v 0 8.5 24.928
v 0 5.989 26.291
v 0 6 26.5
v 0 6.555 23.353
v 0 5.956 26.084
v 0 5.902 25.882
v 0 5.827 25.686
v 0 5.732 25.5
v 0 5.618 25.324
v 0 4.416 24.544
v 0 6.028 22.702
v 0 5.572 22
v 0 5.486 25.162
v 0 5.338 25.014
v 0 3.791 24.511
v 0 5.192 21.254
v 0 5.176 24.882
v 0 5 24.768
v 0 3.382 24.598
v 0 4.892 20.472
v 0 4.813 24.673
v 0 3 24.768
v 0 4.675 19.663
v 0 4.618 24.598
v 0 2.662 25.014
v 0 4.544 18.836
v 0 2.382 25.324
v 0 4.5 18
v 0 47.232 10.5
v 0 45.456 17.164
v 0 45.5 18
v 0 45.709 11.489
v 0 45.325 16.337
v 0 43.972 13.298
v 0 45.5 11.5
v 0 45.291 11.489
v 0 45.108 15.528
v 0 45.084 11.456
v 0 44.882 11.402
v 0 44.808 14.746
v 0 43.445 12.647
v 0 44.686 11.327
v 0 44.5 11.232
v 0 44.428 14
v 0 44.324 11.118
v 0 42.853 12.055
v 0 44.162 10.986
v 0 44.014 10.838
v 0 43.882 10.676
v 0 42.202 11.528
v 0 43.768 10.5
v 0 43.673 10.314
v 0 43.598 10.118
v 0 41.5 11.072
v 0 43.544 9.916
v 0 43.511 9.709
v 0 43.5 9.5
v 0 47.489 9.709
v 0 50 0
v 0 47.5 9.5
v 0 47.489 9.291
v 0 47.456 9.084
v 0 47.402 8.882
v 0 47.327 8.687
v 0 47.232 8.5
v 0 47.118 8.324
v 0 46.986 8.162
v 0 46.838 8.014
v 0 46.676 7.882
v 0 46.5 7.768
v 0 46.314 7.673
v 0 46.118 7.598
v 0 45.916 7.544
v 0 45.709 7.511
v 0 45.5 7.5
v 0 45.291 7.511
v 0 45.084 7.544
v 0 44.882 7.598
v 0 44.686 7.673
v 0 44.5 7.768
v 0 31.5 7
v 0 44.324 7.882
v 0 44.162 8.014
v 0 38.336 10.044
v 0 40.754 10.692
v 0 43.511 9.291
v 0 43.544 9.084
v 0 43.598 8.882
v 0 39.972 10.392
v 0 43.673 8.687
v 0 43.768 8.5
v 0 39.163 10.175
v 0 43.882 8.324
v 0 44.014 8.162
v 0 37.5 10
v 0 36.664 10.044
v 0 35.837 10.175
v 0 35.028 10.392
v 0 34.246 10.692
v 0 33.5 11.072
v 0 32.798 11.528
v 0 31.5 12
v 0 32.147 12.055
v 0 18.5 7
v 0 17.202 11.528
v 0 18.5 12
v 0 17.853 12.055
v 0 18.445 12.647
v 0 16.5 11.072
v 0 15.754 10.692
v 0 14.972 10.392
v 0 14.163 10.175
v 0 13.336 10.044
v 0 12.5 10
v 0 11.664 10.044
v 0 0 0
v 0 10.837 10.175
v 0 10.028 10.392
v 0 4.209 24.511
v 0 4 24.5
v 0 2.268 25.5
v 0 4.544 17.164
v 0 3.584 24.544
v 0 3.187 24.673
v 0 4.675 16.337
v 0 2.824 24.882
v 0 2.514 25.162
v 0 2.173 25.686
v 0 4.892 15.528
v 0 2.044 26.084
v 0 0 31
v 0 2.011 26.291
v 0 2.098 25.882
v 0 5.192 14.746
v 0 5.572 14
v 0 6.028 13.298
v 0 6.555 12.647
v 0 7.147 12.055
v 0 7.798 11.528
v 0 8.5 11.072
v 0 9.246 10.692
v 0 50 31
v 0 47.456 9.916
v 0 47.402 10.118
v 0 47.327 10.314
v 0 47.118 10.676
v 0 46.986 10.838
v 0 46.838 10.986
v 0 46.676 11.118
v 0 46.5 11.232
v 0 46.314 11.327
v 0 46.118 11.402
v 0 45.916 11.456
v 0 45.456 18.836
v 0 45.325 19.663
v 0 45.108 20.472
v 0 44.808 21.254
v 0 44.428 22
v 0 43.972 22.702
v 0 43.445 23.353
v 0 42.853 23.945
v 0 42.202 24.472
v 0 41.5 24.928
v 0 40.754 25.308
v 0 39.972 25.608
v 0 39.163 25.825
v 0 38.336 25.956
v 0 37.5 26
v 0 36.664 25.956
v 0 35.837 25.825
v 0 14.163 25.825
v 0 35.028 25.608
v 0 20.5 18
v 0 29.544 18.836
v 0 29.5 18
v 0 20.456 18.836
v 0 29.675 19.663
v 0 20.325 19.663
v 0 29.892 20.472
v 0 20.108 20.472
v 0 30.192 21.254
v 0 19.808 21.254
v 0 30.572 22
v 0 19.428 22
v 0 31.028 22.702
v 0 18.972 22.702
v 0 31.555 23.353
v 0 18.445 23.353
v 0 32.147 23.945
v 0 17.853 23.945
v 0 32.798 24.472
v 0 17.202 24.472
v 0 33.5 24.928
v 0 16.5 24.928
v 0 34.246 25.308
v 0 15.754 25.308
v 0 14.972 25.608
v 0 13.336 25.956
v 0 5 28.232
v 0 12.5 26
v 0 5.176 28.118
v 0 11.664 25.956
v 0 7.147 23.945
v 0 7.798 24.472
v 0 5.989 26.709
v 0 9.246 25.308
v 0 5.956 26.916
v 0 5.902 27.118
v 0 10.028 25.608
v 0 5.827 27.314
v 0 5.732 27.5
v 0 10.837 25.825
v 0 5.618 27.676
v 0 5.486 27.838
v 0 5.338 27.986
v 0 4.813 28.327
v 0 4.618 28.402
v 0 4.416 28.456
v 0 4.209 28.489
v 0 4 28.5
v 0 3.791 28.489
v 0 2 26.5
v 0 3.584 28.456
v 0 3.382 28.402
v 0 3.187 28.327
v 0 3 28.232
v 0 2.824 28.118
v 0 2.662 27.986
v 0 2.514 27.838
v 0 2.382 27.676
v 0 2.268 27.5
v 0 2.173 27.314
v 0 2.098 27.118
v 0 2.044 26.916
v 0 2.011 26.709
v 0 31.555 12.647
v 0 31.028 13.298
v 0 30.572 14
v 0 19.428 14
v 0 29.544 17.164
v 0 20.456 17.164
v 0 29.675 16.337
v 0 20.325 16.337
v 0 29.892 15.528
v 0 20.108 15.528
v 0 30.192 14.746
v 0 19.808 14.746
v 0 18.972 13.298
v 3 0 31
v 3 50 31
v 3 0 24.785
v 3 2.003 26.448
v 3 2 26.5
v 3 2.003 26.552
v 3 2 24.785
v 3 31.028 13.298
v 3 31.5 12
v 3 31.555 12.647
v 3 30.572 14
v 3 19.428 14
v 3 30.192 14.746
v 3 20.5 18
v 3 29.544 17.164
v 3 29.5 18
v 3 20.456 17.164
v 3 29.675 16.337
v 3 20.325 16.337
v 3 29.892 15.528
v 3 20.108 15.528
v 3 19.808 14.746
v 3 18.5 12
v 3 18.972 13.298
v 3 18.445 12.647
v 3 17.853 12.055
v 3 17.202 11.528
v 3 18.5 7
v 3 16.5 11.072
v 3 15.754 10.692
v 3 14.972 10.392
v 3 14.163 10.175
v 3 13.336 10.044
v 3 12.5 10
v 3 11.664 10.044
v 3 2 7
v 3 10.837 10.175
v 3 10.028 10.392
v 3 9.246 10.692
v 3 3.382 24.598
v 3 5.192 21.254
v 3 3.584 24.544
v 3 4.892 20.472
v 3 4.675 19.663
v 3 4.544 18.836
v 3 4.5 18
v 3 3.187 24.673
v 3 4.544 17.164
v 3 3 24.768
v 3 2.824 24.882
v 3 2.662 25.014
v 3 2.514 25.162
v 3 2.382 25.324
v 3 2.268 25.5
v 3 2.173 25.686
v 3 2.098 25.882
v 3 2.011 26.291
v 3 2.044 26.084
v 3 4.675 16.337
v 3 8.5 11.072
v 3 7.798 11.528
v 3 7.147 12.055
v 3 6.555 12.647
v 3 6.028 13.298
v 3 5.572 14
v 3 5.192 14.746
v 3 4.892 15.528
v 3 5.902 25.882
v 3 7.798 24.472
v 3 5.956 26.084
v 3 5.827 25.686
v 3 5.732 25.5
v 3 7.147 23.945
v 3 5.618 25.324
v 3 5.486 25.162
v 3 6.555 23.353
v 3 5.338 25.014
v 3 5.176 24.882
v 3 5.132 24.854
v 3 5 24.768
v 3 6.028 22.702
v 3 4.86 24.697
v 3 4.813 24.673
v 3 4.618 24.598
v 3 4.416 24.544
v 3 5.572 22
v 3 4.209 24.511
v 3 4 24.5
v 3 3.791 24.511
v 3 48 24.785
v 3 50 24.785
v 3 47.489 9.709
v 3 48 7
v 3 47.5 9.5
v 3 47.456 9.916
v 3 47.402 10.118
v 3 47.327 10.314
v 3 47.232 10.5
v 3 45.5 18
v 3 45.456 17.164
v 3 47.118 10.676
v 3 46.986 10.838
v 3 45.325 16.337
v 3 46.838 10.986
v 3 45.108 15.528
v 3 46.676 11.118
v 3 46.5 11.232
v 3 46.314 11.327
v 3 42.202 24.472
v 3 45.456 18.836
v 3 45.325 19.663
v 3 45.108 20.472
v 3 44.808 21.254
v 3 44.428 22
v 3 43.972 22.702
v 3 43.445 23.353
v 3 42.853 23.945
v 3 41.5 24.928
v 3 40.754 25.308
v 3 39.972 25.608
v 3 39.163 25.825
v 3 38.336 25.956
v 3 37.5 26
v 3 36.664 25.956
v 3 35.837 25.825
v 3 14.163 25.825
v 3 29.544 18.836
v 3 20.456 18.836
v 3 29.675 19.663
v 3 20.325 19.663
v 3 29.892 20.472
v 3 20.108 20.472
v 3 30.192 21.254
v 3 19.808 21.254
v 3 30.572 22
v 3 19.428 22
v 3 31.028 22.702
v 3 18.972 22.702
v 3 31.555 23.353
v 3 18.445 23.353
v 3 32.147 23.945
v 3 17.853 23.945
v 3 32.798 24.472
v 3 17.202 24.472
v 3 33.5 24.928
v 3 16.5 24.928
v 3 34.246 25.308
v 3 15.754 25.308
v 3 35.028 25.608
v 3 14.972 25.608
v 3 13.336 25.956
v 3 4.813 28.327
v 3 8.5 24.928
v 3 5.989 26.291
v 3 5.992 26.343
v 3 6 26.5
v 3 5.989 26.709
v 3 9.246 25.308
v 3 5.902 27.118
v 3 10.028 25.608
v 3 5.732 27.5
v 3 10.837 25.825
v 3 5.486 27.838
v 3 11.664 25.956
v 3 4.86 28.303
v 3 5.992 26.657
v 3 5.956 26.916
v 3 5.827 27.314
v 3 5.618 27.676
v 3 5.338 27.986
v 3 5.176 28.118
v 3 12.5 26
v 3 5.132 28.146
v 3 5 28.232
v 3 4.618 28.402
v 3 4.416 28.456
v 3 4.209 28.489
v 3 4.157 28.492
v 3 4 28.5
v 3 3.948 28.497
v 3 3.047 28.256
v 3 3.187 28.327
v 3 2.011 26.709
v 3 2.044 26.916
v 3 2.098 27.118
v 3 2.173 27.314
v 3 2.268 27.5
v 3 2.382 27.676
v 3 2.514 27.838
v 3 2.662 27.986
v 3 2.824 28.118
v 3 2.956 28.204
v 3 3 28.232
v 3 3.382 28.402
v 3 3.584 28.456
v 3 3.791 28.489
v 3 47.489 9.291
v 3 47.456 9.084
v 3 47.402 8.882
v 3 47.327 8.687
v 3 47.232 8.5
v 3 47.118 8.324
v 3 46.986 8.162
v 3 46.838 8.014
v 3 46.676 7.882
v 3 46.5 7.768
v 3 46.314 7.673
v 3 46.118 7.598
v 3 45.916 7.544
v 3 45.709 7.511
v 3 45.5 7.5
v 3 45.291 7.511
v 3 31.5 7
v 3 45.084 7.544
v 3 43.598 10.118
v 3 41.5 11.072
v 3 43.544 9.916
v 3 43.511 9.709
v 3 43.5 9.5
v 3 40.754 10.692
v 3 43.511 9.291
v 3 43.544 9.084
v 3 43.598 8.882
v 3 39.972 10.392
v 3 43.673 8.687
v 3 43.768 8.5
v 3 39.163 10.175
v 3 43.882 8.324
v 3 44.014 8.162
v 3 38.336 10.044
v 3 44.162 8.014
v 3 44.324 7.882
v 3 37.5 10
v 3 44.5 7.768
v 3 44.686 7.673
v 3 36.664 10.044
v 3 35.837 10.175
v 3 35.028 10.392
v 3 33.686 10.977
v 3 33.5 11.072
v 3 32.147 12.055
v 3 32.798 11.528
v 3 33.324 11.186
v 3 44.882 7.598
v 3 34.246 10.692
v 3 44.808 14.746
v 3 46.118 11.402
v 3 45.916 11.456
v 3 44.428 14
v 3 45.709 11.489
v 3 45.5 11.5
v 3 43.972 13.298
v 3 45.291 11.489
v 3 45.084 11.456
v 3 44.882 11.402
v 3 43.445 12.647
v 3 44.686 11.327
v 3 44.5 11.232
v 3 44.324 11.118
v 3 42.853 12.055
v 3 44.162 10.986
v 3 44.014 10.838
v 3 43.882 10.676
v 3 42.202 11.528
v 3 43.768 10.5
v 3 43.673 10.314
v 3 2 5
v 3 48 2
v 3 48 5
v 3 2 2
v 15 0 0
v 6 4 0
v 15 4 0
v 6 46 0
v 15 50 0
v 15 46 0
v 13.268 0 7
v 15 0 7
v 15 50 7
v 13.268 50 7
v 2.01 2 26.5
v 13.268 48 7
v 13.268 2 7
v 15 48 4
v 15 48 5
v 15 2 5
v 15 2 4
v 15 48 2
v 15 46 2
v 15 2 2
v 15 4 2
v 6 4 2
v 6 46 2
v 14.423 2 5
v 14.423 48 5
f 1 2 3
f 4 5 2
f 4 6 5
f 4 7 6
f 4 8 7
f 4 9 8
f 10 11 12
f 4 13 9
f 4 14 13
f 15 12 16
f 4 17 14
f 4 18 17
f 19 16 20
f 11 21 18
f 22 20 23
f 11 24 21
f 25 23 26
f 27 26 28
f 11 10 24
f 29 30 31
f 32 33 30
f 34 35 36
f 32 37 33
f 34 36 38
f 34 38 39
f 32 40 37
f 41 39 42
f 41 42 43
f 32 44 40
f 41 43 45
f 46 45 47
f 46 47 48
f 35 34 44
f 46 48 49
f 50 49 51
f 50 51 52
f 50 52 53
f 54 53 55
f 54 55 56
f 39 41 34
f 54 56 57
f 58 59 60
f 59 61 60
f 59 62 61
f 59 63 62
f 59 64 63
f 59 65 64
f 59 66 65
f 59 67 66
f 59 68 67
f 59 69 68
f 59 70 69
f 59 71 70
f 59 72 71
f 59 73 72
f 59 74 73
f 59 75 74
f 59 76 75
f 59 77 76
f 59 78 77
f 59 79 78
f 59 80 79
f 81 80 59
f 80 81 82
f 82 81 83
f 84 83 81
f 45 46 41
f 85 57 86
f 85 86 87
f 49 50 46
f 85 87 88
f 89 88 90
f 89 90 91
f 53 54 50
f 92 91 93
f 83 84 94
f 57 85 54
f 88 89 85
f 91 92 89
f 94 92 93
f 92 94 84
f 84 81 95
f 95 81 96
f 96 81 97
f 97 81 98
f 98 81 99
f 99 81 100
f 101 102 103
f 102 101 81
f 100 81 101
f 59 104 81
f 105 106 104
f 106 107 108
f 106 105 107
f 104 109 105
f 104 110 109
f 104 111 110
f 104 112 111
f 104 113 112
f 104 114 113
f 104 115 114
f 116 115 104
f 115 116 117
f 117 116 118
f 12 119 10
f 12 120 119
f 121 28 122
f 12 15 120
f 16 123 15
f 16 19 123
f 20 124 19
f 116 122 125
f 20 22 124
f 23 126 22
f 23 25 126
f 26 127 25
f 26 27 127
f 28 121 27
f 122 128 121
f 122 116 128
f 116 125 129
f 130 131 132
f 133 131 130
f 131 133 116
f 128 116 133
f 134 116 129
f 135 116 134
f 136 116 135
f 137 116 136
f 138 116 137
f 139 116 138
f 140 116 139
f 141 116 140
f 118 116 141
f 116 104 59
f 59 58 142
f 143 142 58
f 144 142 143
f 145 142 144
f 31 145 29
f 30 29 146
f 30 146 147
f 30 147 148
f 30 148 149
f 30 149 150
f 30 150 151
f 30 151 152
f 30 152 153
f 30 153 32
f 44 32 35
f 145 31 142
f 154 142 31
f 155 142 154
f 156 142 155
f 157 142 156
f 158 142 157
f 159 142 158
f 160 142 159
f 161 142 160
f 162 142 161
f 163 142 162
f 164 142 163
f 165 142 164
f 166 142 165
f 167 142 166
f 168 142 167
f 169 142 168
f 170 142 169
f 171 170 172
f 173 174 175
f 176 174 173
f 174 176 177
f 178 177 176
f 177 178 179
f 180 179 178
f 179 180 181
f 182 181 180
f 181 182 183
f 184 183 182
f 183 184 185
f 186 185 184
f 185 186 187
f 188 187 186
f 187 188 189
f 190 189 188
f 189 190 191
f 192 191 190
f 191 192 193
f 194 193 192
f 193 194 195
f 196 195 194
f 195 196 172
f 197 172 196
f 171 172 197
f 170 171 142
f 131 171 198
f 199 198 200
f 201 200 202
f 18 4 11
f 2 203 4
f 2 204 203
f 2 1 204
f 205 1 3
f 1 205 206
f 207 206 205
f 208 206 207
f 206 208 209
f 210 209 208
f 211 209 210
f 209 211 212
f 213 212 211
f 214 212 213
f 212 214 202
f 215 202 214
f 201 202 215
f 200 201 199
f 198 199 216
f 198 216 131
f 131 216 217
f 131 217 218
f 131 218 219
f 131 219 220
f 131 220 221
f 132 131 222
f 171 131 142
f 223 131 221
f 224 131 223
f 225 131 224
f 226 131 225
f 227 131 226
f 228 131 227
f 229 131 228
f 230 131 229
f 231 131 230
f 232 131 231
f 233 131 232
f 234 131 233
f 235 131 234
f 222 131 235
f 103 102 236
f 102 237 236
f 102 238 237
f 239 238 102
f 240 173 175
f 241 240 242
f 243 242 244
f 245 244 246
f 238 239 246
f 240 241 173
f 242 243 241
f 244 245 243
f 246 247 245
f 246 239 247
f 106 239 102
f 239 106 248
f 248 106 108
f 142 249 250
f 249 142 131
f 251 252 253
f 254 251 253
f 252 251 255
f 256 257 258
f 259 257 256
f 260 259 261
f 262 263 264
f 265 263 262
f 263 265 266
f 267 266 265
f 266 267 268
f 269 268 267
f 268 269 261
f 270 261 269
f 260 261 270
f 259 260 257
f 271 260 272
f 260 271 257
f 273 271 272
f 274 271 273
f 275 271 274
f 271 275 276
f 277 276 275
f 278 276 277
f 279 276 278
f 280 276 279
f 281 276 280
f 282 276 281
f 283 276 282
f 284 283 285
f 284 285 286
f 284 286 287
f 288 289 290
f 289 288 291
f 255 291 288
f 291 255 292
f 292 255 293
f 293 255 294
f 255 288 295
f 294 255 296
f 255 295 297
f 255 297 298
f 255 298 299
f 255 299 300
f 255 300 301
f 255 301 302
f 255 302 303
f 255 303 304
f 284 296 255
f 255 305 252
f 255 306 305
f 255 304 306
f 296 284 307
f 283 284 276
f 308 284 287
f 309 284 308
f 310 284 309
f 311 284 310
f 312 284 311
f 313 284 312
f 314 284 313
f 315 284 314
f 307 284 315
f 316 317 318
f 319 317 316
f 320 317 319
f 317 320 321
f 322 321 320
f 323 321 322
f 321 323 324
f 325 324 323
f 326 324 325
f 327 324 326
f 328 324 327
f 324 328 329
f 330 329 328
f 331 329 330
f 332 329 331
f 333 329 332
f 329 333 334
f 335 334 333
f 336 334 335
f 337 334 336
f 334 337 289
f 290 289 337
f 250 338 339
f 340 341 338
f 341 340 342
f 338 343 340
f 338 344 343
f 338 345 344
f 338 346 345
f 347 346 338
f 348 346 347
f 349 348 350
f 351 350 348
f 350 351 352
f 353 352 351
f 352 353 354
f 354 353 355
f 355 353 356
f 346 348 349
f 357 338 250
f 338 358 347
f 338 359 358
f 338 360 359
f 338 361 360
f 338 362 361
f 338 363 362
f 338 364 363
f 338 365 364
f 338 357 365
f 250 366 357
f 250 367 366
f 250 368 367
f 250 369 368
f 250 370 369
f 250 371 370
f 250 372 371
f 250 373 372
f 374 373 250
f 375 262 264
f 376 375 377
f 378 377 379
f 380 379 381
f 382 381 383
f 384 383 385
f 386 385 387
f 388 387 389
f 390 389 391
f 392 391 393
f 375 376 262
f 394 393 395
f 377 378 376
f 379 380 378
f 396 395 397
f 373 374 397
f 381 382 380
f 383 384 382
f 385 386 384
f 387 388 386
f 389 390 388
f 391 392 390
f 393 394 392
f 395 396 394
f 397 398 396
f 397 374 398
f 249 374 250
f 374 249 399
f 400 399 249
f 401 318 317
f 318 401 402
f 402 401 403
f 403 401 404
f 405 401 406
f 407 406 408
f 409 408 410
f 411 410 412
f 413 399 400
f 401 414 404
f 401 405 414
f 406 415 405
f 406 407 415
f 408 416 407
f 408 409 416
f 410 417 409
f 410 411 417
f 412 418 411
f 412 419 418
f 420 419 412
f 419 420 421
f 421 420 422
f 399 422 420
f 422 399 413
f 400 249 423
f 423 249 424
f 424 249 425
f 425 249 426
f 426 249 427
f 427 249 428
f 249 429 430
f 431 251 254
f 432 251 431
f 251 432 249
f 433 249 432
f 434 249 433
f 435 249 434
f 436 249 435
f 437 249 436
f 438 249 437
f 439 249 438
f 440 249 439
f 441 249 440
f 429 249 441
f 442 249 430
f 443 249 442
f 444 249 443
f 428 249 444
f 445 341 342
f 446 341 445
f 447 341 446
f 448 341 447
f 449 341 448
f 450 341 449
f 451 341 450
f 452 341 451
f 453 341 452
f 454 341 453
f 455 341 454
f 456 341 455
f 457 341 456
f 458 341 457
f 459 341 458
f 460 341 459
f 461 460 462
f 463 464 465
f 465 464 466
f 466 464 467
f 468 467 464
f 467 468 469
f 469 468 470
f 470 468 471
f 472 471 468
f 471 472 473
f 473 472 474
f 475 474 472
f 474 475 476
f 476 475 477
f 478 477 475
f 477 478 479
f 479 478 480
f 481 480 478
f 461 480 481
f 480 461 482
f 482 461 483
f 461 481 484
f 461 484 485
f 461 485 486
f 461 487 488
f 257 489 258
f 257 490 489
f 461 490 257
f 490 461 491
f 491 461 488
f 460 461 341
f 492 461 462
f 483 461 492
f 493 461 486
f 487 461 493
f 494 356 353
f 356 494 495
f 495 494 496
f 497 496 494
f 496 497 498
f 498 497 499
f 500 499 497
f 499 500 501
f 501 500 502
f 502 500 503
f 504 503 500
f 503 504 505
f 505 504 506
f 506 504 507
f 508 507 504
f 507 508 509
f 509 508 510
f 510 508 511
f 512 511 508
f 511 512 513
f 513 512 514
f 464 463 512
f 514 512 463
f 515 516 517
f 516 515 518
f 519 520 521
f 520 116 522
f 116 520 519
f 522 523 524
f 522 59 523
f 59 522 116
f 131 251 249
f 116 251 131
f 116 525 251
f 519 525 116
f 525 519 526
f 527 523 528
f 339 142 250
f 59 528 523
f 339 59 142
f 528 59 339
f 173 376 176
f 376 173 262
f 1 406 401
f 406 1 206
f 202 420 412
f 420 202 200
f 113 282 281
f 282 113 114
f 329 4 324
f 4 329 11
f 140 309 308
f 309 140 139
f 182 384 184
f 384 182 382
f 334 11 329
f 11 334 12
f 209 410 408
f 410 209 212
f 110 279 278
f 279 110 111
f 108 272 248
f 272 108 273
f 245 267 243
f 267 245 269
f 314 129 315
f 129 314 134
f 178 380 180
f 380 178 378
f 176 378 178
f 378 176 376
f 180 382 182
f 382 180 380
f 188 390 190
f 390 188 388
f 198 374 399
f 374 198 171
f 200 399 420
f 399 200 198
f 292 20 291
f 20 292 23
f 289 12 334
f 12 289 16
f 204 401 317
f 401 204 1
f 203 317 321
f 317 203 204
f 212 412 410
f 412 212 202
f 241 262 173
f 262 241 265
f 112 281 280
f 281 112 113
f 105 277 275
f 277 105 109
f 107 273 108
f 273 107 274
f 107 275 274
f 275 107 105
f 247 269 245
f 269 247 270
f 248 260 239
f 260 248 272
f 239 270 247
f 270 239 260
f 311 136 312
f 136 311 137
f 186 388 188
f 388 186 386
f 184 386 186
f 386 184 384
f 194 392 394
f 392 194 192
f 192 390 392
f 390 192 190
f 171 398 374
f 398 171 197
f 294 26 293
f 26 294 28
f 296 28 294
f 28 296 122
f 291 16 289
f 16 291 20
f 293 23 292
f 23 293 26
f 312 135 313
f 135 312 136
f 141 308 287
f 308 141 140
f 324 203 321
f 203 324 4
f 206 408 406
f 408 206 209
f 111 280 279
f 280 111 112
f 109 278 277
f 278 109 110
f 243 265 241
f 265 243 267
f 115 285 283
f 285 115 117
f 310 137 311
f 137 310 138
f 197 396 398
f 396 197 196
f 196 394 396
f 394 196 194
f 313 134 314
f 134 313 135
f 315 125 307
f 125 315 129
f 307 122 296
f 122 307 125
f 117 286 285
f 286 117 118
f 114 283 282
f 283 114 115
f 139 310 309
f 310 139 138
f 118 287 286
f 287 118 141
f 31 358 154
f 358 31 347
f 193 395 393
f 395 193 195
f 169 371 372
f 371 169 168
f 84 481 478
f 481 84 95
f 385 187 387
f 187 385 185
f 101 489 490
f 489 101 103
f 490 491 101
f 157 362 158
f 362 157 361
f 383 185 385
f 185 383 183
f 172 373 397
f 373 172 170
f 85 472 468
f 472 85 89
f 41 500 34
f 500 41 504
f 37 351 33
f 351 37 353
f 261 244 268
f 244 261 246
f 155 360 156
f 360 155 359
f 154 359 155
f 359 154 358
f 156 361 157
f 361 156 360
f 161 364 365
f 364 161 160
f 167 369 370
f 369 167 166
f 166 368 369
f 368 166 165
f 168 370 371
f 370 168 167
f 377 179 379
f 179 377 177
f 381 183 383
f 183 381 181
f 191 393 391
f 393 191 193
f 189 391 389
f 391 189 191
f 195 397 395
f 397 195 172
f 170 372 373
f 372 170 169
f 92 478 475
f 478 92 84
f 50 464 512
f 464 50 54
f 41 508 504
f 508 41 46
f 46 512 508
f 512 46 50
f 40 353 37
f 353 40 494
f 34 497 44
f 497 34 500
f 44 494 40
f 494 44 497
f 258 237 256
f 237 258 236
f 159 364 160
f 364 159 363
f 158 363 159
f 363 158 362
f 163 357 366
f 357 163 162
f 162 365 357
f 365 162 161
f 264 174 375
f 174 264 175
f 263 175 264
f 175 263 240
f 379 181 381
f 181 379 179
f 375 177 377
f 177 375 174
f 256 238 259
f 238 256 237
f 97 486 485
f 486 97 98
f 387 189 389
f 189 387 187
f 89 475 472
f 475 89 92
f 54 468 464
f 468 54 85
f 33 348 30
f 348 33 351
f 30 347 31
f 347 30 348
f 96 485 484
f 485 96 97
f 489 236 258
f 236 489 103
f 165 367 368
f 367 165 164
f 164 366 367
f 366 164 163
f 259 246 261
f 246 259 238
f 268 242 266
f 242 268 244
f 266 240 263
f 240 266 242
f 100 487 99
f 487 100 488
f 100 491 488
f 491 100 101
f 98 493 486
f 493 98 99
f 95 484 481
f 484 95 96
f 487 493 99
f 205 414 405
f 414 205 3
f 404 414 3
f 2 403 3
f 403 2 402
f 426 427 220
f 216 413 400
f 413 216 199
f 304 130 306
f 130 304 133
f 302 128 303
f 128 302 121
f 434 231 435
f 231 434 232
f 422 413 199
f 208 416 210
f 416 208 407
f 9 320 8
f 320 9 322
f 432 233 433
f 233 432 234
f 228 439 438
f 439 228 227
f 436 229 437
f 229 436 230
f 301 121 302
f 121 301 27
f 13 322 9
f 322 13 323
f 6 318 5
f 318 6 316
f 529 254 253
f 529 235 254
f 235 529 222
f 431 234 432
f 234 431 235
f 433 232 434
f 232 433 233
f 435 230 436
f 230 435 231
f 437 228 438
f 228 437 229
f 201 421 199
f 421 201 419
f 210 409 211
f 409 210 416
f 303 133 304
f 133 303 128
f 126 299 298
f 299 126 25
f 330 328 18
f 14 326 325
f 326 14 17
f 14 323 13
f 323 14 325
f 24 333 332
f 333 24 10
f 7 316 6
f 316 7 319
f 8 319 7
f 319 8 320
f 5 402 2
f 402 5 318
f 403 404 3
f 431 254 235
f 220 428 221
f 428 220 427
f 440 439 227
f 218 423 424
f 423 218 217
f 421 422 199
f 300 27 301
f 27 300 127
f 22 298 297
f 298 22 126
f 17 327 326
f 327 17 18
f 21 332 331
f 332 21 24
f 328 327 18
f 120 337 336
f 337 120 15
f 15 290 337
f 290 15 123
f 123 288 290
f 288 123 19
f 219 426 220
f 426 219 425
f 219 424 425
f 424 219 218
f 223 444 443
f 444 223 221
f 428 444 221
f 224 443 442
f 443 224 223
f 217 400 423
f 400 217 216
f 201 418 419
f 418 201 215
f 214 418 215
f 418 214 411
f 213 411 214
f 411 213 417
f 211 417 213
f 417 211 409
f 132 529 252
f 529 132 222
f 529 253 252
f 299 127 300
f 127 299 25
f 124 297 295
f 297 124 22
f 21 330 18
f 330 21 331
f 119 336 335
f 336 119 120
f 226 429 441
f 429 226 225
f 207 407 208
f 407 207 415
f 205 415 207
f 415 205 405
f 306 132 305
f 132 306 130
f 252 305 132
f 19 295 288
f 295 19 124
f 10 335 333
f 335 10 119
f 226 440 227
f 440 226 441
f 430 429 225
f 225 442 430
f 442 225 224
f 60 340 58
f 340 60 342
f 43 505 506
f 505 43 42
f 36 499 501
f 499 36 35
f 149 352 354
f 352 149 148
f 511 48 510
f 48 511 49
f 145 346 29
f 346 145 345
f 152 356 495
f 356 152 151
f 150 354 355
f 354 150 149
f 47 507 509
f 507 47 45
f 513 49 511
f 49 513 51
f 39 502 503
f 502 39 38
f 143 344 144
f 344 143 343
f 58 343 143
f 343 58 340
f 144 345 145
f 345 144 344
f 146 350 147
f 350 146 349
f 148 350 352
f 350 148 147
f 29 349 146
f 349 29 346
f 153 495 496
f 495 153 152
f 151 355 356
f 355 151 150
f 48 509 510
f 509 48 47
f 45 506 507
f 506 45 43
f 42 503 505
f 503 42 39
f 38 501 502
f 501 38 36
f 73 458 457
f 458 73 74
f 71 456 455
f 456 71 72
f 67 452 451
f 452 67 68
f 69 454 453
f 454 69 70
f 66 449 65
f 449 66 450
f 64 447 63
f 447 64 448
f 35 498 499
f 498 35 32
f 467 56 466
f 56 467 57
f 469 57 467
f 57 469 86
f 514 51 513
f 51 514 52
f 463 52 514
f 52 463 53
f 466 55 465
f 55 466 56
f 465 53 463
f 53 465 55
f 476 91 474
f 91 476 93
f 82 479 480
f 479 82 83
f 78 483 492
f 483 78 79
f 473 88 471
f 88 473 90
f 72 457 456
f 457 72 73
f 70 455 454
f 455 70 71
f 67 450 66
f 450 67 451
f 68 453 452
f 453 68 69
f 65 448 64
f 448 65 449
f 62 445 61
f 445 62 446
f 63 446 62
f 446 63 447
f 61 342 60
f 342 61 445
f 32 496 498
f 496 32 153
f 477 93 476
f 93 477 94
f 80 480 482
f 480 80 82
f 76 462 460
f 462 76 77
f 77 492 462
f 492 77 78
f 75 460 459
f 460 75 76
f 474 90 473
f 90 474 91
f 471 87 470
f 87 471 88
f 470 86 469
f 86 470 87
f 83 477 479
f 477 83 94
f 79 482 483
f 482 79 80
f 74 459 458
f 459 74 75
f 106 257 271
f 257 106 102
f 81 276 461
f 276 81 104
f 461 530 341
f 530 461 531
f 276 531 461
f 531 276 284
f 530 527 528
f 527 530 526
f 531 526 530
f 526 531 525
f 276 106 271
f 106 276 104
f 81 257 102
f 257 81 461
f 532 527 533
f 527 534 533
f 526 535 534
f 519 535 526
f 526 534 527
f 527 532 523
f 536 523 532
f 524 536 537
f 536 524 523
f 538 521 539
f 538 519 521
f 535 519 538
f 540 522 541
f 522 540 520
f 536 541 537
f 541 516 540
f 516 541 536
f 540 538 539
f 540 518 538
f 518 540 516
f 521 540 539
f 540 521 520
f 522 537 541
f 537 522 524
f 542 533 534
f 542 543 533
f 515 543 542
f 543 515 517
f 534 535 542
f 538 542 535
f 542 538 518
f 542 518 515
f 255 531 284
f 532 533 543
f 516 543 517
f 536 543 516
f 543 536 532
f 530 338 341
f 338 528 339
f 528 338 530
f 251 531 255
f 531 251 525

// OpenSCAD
$fn=60;

standWidth = 15;
standHeight = 7;
standLength = 50;

ultrasonicWidth = 3;
ultrasonicHeight = 24;
ultrasonicLength = 50;
totalUltrasonicHeight = ultrasonicHeight + standHeight;

difference(){
    cube([ultrasonicWidth, ultrasonicLength, totalUltrasonicHeight]);
    translate([0, 12.5, 11+standHeight]){
        rotate ([90,0,90]) cylinder(ultrasonicWidth + 1,8,8);
    }
    translate([0, 37.5, 11+standHeight]){
        rotate ([90,0,90]) cylinder(ultrasonicWidth + 1,8,8);
    }
    translate([0, 4, 19.5+standHeight]){
        rotate ([90,0,90]) cylinder(ultrasonicWidth + 1,2,2);
    }
    translate([0, 45.5, 2.5+standHeight]){
        rotate ([90,0,90]) cylinder(ultrasonicWidth + 1,2,2);
    }
    translate([0, 18.5, standHeight]){
        cube([ultrasonicWidth, 13, 5]);
    }
}

difference(){
    cube([standWidth, standLength, standHeight]);
    translate([6, 4, 0]){
        cube([standWidth, standLength - 8, 2]);
    }
    translate([0, 2, 2]){
        cube([standWidth, standLength - 4, 3]);
    }
    
}


difference(){
    translate([0, 48, 0]){
        cube([standWidth, 2, totalUltrasonicHeight]);
    }
    color("Yellow") translate([15, 48, 4]){
        rotate ([0,-30,0]){
            cube([standWidth, 2, totalUltrasonicHeight]);
        }
    }
}

difference(){
    cube([standWidth, 2, totalUltrasonicHeight]);
    color("Yellow") translate([15, 0, 4]){
        rotate ([0,-30,0]){
            cube([standWidth, 2, totalUltrasonicHeight]);
        }
    }
}
